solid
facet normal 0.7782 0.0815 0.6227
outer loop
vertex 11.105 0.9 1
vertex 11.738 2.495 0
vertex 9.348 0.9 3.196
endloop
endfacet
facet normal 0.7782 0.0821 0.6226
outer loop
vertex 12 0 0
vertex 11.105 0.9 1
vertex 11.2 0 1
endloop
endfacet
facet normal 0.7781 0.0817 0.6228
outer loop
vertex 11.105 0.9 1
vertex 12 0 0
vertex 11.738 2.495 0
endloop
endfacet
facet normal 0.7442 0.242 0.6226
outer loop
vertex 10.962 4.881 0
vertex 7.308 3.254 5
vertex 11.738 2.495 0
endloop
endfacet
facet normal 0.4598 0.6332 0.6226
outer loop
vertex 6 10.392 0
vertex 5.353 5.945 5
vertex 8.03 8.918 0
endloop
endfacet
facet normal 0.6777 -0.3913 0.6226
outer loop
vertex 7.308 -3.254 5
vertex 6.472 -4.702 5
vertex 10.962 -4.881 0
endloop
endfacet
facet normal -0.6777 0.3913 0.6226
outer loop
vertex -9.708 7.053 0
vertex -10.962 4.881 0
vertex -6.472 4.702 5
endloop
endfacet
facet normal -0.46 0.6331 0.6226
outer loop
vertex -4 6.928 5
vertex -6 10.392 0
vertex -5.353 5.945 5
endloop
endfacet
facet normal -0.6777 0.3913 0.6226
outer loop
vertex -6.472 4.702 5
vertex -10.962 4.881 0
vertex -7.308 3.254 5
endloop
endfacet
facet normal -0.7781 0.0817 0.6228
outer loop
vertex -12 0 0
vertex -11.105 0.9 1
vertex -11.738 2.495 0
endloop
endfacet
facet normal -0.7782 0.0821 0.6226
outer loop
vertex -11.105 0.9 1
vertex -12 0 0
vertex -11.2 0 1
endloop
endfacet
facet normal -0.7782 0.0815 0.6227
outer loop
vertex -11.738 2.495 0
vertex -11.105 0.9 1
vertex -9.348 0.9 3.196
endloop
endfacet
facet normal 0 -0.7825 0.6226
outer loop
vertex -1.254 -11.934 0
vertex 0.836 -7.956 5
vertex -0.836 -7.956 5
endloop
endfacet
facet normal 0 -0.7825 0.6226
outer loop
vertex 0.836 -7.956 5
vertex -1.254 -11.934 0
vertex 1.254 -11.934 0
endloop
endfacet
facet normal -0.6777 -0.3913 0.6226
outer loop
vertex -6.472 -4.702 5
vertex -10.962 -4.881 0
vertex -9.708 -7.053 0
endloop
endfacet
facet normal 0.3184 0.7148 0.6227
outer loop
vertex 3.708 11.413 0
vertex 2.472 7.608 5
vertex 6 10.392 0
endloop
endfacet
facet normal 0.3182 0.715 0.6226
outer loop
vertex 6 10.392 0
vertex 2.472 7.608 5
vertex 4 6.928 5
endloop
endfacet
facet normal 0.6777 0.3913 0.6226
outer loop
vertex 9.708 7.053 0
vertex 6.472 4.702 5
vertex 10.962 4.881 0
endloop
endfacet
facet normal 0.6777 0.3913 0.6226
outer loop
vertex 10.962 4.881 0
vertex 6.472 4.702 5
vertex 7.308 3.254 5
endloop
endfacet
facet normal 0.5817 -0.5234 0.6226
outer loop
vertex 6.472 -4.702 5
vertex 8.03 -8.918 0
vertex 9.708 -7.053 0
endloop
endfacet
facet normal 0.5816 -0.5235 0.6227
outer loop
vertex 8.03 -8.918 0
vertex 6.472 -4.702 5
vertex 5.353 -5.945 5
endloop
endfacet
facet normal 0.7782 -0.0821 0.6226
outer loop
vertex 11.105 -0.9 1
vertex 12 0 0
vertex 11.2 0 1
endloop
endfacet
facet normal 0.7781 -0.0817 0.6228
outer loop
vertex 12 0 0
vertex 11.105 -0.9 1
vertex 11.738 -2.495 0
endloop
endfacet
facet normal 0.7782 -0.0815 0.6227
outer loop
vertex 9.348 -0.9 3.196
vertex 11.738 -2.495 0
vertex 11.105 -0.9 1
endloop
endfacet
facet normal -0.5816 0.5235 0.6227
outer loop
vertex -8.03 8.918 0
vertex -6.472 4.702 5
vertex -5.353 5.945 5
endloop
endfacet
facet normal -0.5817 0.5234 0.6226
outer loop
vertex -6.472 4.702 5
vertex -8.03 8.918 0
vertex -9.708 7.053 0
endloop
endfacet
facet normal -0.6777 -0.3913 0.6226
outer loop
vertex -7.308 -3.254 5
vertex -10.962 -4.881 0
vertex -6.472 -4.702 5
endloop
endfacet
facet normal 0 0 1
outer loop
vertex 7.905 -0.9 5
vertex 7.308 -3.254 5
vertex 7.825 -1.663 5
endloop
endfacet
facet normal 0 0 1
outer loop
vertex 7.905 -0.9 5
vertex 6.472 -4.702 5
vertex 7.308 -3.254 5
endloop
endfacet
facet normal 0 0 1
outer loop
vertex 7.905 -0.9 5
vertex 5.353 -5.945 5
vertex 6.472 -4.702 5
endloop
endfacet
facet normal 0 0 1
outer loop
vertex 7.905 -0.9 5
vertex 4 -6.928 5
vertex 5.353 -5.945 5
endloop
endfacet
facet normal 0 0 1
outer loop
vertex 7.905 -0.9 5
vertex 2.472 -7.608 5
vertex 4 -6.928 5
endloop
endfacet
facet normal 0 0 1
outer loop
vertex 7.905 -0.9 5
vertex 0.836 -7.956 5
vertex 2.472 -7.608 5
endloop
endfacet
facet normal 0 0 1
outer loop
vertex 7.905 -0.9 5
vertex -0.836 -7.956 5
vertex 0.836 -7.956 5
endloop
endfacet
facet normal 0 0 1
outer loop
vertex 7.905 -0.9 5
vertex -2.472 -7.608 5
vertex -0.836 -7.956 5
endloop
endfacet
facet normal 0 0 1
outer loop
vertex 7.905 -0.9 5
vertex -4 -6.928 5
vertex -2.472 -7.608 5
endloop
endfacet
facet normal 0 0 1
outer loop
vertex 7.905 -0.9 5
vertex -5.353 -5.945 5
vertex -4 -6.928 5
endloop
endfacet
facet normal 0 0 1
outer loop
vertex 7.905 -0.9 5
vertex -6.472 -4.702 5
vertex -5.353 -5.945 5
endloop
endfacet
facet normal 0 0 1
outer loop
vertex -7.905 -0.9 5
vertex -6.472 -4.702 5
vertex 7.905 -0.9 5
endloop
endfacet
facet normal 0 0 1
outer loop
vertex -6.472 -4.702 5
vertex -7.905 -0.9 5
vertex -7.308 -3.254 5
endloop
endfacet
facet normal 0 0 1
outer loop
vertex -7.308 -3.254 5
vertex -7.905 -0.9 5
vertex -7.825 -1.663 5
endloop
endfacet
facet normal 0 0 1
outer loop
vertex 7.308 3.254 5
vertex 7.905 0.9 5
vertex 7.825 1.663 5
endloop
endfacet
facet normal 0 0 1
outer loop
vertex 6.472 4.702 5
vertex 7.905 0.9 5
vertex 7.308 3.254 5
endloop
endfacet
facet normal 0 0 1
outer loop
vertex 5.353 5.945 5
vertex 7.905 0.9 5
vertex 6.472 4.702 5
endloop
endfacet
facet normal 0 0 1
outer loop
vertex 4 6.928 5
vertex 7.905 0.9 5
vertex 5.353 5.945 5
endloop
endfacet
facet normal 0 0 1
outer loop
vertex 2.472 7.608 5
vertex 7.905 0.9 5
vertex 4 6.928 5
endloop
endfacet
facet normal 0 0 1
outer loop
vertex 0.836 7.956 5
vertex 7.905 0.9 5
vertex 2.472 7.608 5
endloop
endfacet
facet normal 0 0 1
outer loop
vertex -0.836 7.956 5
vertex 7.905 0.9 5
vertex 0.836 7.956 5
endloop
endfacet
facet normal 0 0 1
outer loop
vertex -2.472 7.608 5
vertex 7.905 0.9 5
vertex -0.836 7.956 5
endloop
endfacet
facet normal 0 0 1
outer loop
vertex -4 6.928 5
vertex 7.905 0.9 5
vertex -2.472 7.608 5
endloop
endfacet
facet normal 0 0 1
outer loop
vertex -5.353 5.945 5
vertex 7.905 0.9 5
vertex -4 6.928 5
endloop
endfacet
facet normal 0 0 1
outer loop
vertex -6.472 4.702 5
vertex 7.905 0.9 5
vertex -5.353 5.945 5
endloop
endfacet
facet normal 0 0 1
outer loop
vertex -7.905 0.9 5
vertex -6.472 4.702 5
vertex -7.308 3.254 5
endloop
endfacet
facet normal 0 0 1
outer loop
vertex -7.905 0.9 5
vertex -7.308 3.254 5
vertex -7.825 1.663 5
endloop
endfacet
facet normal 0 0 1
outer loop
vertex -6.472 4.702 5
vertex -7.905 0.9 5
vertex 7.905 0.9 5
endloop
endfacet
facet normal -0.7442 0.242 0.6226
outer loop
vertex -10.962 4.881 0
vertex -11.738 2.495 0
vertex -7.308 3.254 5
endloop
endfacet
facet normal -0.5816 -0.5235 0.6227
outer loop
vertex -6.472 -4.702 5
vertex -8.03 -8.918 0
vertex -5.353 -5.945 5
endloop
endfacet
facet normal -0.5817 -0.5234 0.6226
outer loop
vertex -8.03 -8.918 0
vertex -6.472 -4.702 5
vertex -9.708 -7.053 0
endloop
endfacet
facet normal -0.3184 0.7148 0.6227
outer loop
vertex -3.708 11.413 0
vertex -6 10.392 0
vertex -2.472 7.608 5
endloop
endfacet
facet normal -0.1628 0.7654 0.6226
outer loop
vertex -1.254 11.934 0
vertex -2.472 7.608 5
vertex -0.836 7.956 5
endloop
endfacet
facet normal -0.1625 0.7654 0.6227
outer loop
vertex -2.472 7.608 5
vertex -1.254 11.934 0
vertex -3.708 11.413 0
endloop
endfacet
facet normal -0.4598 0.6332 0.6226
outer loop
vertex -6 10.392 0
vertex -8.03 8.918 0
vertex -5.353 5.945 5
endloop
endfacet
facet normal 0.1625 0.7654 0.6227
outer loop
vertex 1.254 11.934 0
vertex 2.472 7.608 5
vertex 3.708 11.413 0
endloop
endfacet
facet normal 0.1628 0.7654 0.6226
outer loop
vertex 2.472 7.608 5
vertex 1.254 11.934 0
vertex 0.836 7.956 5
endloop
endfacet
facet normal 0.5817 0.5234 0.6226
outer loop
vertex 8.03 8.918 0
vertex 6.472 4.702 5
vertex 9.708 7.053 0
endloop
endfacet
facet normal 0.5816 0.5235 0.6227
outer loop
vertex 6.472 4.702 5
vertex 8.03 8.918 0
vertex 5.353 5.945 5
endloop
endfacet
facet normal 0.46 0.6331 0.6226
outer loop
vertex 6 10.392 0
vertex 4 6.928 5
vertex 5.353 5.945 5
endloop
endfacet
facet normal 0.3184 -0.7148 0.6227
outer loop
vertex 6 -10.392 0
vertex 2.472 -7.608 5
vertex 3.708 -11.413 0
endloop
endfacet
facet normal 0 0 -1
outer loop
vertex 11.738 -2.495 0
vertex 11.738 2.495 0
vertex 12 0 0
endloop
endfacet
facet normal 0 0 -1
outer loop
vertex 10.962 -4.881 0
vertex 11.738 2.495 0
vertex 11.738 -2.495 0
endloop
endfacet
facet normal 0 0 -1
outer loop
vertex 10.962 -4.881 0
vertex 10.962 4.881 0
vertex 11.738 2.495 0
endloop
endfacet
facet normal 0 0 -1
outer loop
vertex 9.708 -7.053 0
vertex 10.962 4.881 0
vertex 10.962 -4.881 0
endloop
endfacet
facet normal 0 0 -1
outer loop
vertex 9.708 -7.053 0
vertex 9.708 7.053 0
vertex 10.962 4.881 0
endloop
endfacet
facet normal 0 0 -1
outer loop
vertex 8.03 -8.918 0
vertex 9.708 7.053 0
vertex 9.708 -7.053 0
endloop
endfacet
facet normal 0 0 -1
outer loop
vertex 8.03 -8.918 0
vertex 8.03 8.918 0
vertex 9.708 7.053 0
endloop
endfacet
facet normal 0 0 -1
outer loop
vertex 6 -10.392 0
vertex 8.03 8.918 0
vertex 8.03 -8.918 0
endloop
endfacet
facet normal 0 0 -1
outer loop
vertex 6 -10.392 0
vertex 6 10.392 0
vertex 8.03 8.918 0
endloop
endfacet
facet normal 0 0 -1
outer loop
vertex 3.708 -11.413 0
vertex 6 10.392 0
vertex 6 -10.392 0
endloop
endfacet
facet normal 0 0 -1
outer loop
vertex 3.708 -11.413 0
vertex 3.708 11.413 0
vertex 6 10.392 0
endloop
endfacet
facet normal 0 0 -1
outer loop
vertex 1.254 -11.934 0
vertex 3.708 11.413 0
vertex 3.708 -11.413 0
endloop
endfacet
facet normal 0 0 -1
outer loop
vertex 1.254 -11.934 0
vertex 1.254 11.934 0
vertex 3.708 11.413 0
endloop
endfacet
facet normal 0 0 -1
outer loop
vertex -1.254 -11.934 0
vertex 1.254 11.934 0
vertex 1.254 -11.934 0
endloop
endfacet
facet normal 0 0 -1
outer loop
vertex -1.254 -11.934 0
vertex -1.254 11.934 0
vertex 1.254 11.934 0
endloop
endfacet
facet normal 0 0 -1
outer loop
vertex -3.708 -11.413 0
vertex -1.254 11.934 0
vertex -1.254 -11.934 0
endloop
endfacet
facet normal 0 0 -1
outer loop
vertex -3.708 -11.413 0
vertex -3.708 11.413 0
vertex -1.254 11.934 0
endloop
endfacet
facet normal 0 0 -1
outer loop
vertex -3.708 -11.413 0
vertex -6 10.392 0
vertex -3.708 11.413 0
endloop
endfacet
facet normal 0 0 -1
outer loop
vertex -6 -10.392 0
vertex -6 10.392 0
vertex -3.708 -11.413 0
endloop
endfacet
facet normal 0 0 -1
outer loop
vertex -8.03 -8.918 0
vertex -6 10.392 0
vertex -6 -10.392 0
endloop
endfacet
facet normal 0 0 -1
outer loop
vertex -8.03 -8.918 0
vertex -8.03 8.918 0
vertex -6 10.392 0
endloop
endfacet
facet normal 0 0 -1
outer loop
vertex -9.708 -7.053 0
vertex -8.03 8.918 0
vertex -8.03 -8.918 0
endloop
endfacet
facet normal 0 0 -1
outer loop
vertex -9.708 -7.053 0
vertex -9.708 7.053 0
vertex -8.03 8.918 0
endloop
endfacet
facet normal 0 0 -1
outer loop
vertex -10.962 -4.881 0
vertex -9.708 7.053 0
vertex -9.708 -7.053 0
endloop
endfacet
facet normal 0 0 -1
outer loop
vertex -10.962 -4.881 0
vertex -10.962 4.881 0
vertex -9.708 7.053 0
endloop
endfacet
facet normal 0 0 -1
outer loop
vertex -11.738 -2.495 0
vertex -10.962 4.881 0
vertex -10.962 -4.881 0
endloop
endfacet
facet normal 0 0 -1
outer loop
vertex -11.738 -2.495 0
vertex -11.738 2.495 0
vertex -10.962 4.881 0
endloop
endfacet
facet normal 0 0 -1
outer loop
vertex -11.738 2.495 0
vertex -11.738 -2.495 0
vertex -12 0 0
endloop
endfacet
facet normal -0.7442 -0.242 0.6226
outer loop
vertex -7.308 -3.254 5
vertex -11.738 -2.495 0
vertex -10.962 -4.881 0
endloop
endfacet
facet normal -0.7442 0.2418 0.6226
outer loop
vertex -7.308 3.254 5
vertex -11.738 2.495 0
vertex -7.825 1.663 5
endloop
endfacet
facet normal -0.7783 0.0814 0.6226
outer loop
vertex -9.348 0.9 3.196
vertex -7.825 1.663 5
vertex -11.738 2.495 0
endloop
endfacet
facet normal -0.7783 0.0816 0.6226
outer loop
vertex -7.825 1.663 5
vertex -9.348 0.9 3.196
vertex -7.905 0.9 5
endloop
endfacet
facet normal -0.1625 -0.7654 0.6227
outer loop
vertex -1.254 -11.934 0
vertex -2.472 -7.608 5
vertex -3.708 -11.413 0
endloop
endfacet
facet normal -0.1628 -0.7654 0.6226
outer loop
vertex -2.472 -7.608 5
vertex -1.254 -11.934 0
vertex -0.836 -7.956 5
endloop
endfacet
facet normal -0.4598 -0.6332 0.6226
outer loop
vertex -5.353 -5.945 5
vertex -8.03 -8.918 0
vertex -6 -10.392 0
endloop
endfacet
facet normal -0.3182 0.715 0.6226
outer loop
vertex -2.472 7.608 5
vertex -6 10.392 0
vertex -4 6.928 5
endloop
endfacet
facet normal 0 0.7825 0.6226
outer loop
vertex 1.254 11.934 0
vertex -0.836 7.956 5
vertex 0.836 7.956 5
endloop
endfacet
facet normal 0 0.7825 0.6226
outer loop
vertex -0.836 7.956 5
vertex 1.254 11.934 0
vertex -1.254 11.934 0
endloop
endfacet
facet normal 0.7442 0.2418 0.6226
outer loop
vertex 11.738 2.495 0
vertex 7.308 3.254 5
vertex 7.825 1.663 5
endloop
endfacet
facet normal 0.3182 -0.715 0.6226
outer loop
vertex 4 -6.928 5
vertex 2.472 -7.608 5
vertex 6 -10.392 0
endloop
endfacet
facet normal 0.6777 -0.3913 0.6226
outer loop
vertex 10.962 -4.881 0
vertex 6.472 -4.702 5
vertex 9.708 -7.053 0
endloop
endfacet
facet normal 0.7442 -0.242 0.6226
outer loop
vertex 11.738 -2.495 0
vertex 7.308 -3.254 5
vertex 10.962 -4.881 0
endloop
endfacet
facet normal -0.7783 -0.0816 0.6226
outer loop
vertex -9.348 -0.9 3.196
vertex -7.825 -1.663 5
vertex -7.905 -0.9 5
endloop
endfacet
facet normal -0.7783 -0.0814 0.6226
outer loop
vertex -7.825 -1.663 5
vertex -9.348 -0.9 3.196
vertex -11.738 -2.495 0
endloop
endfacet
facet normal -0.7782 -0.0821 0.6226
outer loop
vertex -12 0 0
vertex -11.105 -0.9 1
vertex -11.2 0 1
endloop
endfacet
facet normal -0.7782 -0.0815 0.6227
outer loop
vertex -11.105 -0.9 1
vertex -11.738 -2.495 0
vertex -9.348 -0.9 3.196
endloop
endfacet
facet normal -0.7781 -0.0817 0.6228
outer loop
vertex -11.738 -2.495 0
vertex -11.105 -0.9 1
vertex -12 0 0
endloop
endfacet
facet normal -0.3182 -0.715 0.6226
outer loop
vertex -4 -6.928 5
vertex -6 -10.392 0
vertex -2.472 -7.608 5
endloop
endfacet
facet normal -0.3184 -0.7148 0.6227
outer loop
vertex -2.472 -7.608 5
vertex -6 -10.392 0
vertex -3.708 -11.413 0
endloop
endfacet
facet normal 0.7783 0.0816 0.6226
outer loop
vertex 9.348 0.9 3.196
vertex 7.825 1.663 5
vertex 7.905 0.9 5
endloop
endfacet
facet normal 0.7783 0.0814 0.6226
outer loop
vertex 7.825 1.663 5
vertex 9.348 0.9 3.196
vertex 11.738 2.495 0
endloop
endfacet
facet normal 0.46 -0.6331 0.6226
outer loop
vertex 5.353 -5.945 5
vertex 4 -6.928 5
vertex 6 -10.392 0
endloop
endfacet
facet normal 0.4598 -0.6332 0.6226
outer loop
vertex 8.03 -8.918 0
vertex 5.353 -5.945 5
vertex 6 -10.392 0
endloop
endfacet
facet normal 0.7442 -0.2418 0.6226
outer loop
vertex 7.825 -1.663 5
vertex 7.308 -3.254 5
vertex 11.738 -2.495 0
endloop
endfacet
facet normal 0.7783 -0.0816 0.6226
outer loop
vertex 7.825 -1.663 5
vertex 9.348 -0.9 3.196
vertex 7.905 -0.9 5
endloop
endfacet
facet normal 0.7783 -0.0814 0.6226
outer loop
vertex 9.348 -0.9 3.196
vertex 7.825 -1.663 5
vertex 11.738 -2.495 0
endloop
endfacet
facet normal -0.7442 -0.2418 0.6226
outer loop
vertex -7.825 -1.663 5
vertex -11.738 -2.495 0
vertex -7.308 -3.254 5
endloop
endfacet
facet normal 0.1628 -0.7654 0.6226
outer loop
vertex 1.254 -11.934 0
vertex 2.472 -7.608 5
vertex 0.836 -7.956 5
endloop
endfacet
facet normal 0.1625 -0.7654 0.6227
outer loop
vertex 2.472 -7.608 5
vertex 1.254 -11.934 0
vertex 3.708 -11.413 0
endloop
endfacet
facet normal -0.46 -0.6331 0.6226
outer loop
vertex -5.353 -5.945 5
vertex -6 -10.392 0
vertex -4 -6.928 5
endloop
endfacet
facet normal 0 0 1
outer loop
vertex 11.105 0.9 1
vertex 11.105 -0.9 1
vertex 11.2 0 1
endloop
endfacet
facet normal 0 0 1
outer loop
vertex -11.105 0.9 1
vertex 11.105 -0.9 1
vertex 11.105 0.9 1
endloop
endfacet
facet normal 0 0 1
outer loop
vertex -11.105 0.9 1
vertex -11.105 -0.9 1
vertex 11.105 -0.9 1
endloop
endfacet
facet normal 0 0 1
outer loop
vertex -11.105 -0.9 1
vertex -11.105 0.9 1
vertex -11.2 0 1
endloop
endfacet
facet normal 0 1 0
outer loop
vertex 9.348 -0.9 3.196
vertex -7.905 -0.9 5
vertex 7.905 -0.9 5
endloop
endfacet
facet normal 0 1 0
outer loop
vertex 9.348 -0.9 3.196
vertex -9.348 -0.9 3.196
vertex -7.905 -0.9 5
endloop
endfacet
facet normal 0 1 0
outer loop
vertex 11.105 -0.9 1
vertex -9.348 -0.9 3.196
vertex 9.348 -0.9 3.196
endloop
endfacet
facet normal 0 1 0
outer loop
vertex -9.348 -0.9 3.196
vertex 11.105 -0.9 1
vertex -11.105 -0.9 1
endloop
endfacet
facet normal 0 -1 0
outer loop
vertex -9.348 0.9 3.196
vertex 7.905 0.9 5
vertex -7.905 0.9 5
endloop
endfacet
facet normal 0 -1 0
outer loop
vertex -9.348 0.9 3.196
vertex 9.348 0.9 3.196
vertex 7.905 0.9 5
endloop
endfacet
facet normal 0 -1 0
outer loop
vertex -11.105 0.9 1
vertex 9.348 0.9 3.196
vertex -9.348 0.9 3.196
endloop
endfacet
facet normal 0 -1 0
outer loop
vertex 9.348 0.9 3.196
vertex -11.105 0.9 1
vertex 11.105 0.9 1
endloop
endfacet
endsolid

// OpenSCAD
baseRad1 = 12;//20 Base
baseRad2 = 8;// 8 Cuspide
baseH    = 6;//20 Altura

ranuraW = 1.8;//Ancho de lo que entrará
ranuraH = (baseRad1*2)+2;//Lo largo para que cruce
ranuraD = baseH - 1;//Lo profundo

difference()
{
    cylinder(r1=baseRad1,r2=baseRad2,ranuraD);
    
    translate([-ranuraH/2,-ranuraW/2,baseH-ranuraD])
    cube([ranuraH,ranuraW,ranuraD]);
}
